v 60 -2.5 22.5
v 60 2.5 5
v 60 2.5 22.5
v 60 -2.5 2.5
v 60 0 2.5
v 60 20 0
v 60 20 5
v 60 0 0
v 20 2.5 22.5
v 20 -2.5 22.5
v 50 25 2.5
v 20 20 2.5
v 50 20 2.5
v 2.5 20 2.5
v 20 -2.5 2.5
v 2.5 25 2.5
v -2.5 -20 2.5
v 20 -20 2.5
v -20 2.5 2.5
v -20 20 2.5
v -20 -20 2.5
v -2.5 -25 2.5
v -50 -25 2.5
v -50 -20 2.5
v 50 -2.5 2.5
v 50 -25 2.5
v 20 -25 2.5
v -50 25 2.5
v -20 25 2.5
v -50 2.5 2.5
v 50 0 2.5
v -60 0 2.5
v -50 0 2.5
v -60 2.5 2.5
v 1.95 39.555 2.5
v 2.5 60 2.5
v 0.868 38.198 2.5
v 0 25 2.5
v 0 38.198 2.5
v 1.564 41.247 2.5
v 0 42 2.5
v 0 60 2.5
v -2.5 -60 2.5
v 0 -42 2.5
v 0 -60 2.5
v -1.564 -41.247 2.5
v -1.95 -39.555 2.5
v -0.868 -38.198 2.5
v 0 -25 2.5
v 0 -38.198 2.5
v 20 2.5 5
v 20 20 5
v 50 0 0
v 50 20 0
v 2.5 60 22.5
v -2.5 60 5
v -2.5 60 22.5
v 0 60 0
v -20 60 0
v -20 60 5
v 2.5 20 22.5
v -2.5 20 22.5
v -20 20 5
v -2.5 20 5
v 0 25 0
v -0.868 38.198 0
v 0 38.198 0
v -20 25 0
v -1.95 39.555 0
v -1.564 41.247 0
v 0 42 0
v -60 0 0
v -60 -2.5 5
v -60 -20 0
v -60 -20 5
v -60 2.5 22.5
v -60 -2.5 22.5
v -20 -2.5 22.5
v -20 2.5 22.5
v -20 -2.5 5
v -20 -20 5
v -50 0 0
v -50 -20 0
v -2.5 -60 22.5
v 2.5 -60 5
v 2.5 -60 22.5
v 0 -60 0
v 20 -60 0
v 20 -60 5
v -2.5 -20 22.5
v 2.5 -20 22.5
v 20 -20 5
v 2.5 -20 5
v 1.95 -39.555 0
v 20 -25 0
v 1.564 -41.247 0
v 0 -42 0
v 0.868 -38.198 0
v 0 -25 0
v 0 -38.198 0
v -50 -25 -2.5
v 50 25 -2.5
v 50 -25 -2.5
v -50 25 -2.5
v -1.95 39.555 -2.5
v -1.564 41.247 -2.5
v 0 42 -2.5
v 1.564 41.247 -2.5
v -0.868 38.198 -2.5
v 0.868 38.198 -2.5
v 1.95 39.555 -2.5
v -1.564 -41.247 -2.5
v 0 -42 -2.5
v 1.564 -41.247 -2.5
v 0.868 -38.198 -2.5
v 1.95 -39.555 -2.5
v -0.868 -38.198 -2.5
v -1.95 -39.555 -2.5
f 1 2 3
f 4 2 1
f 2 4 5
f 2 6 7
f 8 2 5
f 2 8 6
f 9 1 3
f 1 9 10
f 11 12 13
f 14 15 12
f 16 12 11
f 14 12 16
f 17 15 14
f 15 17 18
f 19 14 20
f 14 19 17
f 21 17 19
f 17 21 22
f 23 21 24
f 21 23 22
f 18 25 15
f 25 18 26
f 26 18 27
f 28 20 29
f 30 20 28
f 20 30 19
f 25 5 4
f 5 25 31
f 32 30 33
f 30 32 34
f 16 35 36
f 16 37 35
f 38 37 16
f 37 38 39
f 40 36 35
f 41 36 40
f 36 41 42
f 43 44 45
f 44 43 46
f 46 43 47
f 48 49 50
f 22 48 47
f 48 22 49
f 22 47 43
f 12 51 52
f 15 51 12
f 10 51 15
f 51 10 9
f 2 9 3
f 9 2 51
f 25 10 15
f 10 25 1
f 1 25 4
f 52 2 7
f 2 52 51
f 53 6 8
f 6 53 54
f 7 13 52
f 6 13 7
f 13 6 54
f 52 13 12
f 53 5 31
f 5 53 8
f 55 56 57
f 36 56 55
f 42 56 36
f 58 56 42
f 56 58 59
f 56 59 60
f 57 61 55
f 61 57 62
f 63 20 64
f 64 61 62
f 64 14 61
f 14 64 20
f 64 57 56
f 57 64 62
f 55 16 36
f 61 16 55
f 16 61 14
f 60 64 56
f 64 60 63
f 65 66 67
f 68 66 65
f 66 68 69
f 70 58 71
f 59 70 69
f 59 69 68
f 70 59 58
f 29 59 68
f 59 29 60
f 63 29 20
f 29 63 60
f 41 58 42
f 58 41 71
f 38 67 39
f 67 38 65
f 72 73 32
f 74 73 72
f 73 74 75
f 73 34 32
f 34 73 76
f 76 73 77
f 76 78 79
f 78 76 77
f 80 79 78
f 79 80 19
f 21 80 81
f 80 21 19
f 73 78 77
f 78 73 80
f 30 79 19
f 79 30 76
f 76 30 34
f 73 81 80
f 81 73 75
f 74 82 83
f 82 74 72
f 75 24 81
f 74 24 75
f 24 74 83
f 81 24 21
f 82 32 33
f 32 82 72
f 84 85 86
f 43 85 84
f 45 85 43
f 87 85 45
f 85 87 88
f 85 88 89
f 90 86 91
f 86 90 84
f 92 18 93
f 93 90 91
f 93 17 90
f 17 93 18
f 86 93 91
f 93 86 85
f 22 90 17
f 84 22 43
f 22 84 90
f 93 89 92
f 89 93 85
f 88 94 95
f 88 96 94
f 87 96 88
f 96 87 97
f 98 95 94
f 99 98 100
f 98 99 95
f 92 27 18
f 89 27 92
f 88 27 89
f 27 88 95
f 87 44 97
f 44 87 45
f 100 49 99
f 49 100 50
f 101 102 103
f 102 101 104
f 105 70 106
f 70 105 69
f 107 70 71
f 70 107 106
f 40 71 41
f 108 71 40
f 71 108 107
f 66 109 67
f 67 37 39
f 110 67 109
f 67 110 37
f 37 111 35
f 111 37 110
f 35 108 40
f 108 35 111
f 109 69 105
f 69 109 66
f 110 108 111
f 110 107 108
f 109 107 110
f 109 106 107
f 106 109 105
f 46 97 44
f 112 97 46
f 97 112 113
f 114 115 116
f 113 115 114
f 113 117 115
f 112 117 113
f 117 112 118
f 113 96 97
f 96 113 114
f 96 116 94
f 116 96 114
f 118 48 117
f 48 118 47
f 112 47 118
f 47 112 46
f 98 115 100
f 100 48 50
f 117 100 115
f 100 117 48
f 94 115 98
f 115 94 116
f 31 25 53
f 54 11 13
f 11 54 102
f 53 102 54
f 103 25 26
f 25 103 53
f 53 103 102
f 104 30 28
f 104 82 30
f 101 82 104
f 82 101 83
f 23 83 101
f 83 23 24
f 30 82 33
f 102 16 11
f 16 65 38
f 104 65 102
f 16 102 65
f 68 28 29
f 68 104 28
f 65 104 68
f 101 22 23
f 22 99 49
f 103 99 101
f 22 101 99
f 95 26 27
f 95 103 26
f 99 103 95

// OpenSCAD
// Base Plate
module base_plate() {
    cube([100, 50, 5], center = true); // Dimensions: 100x50x5
    // Removed additional cutouts or grooves to match the original model
}

// L-Shaped Bracket
module l_shaped_bracket() {
    union() {
        cube([40, 5, 20], center = true); // Vertical part
        translate([0, 10, -10])
            cube([40, 20, 5], center = true); // Horizontal part
    }
    // Simplified the bracket by removing additional features like extended lips or flanges
}

// Fastener (Cylindrical Bolt)
module fastener() {
    cylinder(h = 10, r = 2, center = true); // Height: 10, Radius: 2
    // Clearly defined fasteners to match the original model
}

// Assembly
module assembly() {
    // Layer 3: Base Plate
    base_plate();

    // Layer 1: L-Shaped Brackets
    for (i = [0:3]) {
        rotate([0, 0, i * 90]) // Rotate to position brackets
            translate([40, 0, 12.5]) // Adjusted positioning to align with the original model
                l_shaped_bracket();
    }

    // Layer 2: Fasteners
    for (i = [0:3]) {
        rotate([0, 0, i * 90]) // Rotate to position fasteners
            translate([40, 0, 2.5]) // Adjusted positioning to align with the original model
                fastener();
    }
}

// Render the assembly
assembly();
